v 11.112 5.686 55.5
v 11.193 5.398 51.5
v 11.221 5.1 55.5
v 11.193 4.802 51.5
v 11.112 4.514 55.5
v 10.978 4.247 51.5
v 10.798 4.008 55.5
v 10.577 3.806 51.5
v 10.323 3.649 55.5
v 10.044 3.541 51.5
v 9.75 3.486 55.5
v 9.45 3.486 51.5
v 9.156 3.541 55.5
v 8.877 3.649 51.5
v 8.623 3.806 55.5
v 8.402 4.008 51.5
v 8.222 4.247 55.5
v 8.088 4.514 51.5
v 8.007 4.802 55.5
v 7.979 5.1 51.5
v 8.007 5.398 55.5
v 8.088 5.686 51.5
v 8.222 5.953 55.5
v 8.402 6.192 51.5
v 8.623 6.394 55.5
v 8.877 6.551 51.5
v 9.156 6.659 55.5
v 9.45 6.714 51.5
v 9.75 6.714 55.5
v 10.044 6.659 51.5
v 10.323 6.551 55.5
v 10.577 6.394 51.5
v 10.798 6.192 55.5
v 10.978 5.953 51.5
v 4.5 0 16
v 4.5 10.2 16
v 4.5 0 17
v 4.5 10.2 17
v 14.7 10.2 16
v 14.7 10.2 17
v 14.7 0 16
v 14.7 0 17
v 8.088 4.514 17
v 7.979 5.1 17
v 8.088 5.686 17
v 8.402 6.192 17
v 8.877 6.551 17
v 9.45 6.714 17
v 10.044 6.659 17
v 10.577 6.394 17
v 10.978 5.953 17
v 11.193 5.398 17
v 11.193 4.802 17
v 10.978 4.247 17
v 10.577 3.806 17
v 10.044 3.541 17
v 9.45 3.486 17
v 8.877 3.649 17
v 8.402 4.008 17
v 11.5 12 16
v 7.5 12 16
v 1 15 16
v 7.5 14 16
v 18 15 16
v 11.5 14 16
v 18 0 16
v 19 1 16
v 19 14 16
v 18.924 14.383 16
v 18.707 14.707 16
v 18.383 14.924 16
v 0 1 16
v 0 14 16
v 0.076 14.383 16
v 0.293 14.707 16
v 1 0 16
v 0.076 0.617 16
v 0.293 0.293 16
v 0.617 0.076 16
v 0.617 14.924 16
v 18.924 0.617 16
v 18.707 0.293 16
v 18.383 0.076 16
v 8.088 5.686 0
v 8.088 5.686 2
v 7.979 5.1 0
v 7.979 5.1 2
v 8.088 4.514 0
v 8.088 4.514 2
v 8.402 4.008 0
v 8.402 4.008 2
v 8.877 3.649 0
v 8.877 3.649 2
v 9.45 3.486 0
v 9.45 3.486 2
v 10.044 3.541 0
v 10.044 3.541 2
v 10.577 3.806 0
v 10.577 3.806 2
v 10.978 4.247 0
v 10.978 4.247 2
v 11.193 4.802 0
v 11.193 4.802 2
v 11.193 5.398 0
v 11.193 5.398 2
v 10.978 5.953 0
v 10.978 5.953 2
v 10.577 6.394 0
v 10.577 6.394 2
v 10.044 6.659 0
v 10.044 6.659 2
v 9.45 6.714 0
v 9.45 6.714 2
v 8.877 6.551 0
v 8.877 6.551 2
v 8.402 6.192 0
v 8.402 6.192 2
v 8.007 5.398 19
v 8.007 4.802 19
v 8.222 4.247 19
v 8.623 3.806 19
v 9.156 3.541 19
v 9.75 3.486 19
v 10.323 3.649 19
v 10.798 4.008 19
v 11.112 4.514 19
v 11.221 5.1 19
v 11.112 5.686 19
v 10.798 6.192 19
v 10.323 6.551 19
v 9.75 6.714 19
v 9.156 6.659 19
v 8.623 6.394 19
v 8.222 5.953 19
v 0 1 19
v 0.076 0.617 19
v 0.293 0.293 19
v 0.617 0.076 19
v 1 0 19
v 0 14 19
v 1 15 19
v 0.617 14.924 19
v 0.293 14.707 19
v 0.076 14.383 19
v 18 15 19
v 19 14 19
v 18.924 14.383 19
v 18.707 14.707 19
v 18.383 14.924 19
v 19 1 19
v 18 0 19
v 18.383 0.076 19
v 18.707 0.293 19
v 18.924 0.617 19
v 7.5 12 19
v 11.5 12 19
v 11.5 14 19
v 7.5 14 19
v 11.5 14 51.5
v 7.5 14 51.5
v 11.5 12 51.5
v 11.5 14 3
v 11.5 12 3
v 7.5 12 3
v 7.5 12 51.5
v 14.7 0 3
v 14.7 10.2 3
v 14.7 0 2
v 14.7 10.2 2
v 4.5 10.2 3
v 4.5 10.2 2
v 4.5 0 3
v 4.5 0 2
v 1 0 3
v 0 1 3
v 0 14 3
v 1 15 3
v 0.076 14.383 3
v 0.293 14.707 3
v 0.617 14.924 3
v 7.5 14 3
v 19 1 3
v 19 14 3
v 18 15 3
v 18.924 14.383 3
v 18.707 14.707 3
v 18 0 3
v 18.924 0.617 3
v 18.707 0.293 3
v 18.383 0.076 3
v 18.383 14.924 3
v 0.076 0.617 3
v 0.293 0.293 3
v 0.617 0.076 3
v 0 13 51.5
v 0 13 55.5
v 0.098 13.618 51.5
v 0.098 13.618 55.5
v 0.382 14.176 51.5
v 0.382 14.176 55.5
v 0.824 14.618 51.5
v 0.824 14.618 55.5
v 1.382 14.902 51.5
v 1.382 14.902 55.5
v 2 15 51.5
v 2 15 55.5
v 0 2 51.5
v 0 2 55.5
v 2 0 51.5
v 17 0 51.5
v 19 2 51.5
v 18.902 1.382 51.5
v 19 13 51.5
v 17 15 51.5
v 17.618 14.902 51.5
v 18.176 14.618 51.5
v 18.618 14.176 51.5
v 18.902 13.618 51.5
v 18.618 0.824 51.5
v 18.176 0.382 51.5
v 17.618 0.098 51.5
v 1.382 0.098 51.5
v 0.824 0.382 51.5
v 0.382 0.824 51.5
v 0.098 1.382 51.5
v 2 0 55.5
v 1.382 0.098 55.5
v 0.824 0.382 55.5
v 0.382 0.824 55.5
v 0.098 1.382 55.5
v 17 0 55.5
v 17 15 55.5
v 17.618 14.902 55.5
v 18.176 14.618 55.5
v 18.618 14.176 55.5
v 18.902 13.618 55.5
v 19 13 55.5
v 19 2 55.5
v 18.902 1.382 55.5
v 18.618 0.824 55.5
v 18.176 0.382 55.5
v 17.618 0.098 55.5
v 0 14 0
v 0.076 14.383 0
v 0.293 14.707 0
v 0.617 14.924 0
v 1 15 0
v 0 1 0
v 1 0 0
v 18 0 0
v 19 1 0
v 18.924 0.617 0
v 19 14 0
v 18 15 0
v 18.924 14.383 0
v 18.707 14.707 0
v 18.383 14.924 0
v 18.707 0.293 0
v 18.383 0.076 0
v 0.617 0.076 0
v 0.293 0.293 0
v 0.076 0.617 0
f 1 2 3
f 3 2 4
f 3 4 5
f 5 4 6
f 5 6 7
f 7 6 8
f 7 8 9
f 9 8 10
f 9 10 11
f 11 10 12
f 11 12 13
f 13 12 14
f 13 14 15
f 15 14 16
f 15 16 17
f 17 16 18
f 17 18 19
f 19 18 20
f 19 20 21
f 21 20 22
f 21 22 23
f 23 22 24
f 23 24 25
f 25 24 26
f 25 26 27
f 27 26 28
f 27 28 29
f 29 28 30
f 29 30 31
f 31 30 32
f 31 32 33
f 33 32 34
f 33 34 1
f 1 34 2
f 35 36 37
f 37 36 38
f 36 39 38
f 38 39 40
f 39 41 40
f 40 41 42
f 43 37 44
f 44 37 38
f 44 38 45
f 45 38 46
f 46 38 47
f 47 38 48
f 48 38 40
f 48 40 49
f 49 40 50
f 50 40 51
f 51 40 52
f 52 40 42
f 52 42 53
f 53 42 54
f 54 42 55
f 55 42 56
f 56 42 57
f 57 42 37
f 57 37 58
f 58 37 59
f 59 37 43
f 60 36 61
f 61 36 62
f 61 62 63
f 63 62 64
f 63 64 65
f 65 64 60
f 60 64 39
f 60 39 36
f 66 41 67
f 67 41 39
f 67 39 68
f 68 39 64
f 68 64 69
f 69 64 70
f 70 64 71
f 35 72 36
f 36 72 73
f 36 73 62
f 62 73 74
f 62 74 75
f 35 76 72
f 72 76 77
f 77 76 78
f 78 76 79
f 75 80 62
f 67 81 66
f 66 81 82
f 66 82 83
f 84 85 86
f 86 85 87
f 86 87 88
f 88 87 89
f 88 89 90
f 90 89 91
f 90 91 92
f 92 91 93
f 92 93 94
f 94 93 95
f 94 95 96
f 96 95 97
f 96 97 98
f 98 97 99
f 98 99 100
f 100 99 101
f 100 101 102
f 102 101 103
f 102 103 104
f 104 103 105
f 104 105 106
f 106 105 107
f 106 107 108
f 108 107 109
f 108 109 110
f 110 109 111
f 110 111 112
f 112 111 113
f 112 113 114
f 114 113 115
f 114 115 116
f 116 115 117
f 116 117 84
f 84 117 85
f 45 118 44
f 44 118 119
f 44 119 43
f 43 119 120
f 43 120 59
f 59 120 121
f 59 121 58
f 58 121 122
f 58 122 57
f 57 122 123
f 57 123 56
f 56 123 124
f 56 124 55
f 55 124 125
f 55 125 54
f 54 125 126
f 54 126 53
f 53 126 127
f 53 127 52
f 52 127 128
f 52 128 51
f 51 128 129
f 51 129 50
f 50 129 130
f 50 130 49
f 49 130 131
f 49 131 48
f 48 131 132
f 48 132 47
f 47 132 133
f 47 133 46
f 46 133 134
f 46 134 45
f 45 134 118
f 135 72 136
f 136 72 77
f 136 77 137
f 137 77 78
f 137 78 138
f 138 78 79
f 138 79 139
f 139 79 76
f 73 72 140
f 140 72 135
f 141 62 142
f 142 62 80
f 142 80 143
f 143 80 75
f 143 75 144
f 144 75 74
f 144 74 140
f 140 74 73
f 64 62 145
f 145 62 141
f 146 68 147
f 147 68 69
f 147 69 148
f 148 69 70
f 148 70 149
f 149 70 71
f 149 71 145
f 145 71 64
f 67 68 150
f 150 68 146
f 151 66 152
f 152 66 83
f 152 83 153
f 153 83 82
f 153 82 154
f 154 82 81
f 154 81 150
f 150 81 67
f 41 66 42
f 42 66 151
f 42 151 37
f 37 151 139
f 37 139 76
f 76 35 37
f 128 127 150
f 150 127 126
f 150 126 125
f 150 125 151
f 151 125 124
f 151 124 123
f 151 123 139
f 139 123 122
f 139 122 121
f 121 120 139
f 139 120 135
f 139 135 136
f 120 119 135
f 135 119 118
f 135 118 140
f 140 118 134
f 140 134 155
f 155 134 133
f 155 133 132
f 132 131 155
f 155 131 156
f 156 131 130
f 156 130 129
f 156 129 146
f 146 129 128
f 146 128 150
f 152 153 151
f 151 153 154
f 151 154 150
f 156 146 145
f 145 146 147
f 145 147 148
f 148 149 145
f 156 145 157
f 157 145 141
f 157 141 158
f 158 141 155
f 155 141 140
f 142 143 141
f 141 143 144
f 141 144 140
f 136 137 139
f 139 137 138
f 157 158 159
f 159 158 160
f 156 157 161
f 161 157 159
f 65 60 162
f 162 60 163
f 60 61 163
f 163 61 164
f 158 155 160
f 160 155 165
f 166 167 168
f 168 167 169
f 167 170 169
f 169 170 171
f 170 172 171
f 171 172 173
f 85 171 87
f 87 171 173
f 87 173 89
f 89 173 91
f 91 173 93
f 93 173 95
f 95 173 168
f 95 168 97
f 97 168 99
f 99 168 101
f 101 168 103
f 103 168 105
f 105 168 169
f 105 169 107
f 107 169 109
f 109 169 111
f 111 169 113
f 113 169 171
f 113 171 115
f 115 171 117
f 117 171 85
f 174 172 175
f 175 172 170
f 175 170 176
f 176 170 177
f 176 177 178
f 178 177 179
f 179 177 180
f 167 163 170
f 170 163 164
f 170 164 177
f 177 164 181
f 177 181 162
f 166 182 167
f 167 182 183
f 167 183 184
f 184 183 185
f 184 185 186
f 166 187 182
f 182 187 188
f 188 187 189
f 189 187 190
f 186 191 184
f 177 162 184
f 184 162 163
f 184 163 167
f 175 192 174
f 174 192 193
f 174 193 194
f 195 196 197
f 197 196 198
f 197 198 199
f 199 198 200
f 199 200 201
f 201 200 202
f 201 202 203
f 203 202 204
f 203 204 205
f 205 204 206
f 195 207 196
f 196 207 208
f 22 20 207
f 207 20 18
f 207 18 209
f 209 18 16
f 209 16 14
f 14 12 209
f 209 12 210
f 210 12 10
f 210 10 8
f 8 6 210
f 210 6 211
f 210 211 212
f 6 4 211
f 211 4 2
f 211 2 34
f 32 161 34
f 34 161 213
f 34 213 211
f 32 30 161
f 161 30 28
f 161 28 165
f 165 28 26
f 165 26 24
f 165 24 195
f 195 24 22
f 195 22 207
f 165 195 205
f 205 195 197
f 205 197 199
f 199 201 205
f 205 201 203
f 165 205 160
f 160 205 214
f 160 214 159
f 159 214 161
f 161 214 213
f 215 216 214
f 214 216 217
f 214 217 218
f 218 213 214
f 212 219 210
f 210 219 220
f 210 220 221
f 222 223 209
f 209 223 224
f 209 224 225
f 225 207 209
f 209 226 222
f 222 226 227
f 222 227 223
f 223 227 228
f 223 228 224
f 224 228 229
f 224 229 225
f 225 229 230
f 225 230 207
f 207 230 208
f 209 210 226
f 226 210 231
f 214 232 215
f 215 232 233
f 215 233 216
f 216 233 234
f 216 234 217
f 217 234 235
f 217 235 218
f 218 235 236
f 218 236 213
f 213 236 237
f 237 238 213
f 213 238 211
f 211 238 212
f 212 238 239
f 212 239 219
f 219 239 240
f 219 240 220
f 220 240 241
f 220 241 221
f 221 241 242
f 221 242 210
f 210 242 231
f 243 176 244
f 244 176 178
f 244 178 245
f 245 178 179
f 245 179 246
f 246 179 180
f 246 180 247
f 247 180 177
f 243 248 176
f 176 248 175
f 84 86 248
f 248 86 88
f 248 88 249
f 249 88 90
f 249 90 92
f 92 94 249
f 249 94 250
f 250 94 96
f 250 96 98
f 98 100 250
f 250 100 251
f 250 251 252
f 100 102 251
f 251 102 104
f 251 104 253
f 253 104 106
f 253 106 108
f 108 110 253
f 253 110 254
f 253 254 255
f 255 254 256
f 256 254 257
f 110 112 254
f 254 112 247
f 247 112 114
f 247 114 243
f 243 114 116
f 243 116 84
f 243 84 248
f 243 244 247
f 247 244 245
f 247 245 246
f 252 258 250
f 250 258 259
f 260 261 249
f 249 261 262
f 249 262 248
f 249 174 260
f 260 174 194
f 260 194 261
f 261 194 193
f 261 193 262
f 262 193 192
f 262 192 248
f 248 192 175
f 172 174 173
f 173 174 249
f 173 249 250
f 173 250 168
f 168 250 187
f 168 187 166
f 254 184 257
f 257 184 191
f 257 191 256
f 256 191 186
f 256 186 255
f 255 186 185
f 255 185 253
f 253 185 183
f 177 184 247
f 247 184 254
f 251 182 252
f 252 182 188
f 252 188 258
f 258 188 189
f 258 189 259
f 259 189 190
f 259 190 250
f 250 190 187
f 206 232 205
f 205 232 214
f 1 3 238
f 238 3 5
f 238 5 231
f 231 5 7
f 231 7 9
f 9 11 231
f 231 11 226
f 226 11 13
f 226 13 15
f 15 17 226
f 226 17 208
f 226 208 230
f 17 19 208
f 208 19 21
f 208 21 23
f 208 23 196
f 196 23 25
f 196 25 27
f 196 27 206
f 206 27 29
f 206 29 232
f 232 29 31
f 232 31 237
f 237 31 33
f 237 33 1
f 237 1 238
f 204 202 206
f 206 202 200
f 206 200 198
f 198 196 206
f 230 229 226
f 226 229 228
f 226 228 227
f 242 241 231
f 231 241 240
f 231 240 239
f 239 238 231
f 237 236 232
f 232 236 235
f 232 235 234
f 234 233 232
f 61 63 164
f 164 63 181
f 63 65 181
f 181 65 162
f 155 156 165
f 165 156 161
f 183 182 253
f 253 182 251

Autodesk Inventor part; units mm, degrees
ref_plane "YZ Plane" through (0, 0, 0) normal (1, 0, 0) x (0, 1, 0)
ref_plane "XZ Plane" through (0, 0, 0) normal (0, 1, 0) x (-1, 0, 0)
ref_plane "XY Plane" through (0, 0, 0) normal (0, 0, 1) x (1, 0, 0)
sketch "Sketch1" plane through (0, 0, 0) normal (0, 0, 1) x (1, 0, 0)
  line L0 (0, 0) -> (19, 0)
  line L1 (19, 0) -> (19, 15)
  line L2 (19, 15) -> (0, 15)
  line L3 (0, 15) -> (0, 0)
  point P0 (9.5, 15)
  dimension "d0" = 19
  dimension "d1" = 15
extrude "Extrusion1" add sketch "Sketch1" along normal blind 3
sketch "Sketch2" plane through (0, 0, 3) normal (0, 0, 1) x (1, 0, 0)
  line L0 (19, 15) -> (0, 15) projected
  circle A0 centre (9.5, 13) radius 1
  point P0 (0, 0)
  point P1 (9.5, 15)
  dimension "d4" = 2
  dimension "d5" = 2
extrude "Extrusion2" add sketch "Sketch2" along normal blind 1.5
sketch "Sketch6" plane through (9.5, 13, 4.5) normal (0, 0, 1) x (1, 0, 0)
  circle A0 centre (0, 0) radius 1 projected
  line L0 (2, -1) -> (-2, -1)
  line L1 (-2, -1) -> (-2, 1)
  line L2 (-2, 1) -> (2, 1)
  line L3 (2, 1) -> (2, -1)
  line L4 (2, -1) -> (-2, 1) construction
  line L5 (-2, -1) -> (2, 1) construction
  point P0 (-9.5, -13)
  dimension "d13" = 4
extrude "Extrusion5" add sketch "Sketch6" along normal blind 47
sketch "Sketch7" plane through (9.5, 13, 51.5) normal (0, 0, 1) x (1, 0, 0)
  circle A0 centre (0, 0) radius 1 projected
  line L0 (-9.5, -13) -> (9.5, -13) projected
  line L1 (9.5, -13) -> (9.5, 2) projected
  line L2 (9.5, 2) -> (-9.5, 2) projected
  line L3 (-9.5, 2) -> (-9.5, -13) projected
  arc A1 (0, -1) -> (0, 1) centre (0, 0) ccw projected
  arc A2 (0, 1) -> (0, -1) centre (0, 0) ccw projected
extrude "Extrusion6" add sketch "Sketch7" along normal blind 4 contours A0 | L3 L2 L1 L0
fillet "Fillet2" radius 1 4 edges at (19, 0, 1.5) (19, 15, 1.5) (0, 0, 1.5) (0, 15, 1.5)
fillet "Fillet3" radius 2 4 edges at (19, 0, 53.5) (19, 15, 53.5) (0, 0, 53.5) (0, 15, 53.5)
extrude "Extrusion10" add sketch "Sketch6" against normal up to surface (1.5 mm away) contours A0 L2 L3 L0 | A0 L0 L1 L2
sketch "Sketch13" plane through (0, 0, 3) normal (0, 0, 1) x (1, 0, 0)
  line L0 (11.5, 12) -> (7.5, 12) projected
  line L1 (7.5, 12) -> (7.5, 14) projected
  line L2 (7.5, 14) -> (11.5, 14) projected
  line L3 (11.5, 14) -> (11.5, 12) projected
  arc A0 (1, 15) -> (0, 14) centre (1, 14) ccw projected
  line L4 (0, 14) -> (0, 1) projected
  arc A1 (0, 1) -> (1, 0) centre (1, 1) ccw projected
  line L5 (1, 0) -> (18, 0) projected
  arc A2 (18, 0) -> (19, 1) centre (18, 1) ccw projected
  line L6 (19, 1) -> (19, 14) projected
  arc A3 (19, 14) -> (18, 15) centre (18, 14) ccw projected
  line L7 (18, 15) -> (1, 15) projected
  line L8 (4.5, 10.2) -> (14.7, 10.2)
  line L9 (14.7, 10.2) -> (14.7, 0)
  line L10 (14.7, 0) -> (4.5, 0)
  line L11 (4.5, 0) -> (4.5, 10.2)
  point P0 (0, 0)
  point P1 (14.7, 0)
  dimension "d67" = 10.2
  dimension "d68" = 10.2
  dimension "d69" = 4.5
extrude "Extrusion12" cut sketch "Sketch13" against normal blind 1 contours L11 L8 L9 L5
ref_plane "Work Plane1" through (0, 0, 16) normal (0, 0, 1) x (1, 0, 0)
sketch "Sketch14" plane through (0, 0, 16) normal (0, 0, 1) x (1, 0, 0)
  line L0 (4.5, 0) -> (4.5, 10.2) projected
  line L1 (4.5, 10.2) -> (14.7, 10.2) projected
  line L2 (14.7, 10.2) -> (14.7, 0) projected
  line L3 (14.7, 0) -> (18, 0) projected
  arc A0 (18, 0) -> (19, 1) centre (18, 1) ccw projected
  line L4 (19, 1) -> (19, 14) projected
  arc A1 (19, 14) -> (18, 15) centre (18, 14) ccw projected
  line L5 (18, 15) -> (1, 15) projected
  arc A2 (1, 15) -> (0, 14) centre (1, 14) ccw projected
  line L6 (0, 14) -> (0, 1) projected
  arc A3 (0, 1) -> (1, 0) centre (1, 1) ccw projected
  line L7 (1, 0) -> (4.5, 0) projected
  line L8 (11.5, 12) -> (7.5, 12) projected
  line L9 (7.5, 12) -> (7.5, 14) projected
  line L10 (7.5, 14) -> (11.5, 14) projected
  line L11 (11.5, 14) -> (11.5, 12) projected
  line L12 (4.5, 0) -> (4.5, 10.2) projected
  line L13 (14.7, 0) -> (4.5, 0) projected
  line L14 (14.7, 10.2) -> (14.7, 0) projected
  line L15 (4.5, 10.2) -> (14.7, 10.2) projected
  point P0 (0, 0)
extrude "Extrusion13" add sketch "Sketch14" along normal blind 3
sketch "Sketch15" plane through (0, 0, 19) normal (0, 0, 1) x (1, 0, 0)
  line L0 (4.5, 0) -> (4.5, 10.2) projected
  line L1 (14.7, 0) -> (4.5, 0) projected
  line L2 (14.7, 10.2) -> (14.7, 0) projected
  line L3 (4.5, 10.2) -> (14.7, 10.2) projected
  point P0 (0, 0)
  point P1 (9.6, 5.1)
hole "Hole1" at (9.6, 5.1, 19) direction (0, 0, -1) diameter 3.242 end through all thread size "M4x0.7" class "6H" standard "ISO Metric profile"
extrude "Extrusion14" cut sketch "Sketch14" along normal blind 1 contours L0 L1 L2 L13
sketch "Sketch16" plane through (9.5, 13, 55.5) normal (0, 0, 1) x (1, 0, 0)
  circle A0 centre (0.1, -7.9) radius 1.621 projected
  point P0 (-9.5, -13)
extrude "Extrusion15" cut sketch "Sketch16" against normal up to surface (4 mm away)
properties part number "Crystal-Cut10x10-screwM4"
